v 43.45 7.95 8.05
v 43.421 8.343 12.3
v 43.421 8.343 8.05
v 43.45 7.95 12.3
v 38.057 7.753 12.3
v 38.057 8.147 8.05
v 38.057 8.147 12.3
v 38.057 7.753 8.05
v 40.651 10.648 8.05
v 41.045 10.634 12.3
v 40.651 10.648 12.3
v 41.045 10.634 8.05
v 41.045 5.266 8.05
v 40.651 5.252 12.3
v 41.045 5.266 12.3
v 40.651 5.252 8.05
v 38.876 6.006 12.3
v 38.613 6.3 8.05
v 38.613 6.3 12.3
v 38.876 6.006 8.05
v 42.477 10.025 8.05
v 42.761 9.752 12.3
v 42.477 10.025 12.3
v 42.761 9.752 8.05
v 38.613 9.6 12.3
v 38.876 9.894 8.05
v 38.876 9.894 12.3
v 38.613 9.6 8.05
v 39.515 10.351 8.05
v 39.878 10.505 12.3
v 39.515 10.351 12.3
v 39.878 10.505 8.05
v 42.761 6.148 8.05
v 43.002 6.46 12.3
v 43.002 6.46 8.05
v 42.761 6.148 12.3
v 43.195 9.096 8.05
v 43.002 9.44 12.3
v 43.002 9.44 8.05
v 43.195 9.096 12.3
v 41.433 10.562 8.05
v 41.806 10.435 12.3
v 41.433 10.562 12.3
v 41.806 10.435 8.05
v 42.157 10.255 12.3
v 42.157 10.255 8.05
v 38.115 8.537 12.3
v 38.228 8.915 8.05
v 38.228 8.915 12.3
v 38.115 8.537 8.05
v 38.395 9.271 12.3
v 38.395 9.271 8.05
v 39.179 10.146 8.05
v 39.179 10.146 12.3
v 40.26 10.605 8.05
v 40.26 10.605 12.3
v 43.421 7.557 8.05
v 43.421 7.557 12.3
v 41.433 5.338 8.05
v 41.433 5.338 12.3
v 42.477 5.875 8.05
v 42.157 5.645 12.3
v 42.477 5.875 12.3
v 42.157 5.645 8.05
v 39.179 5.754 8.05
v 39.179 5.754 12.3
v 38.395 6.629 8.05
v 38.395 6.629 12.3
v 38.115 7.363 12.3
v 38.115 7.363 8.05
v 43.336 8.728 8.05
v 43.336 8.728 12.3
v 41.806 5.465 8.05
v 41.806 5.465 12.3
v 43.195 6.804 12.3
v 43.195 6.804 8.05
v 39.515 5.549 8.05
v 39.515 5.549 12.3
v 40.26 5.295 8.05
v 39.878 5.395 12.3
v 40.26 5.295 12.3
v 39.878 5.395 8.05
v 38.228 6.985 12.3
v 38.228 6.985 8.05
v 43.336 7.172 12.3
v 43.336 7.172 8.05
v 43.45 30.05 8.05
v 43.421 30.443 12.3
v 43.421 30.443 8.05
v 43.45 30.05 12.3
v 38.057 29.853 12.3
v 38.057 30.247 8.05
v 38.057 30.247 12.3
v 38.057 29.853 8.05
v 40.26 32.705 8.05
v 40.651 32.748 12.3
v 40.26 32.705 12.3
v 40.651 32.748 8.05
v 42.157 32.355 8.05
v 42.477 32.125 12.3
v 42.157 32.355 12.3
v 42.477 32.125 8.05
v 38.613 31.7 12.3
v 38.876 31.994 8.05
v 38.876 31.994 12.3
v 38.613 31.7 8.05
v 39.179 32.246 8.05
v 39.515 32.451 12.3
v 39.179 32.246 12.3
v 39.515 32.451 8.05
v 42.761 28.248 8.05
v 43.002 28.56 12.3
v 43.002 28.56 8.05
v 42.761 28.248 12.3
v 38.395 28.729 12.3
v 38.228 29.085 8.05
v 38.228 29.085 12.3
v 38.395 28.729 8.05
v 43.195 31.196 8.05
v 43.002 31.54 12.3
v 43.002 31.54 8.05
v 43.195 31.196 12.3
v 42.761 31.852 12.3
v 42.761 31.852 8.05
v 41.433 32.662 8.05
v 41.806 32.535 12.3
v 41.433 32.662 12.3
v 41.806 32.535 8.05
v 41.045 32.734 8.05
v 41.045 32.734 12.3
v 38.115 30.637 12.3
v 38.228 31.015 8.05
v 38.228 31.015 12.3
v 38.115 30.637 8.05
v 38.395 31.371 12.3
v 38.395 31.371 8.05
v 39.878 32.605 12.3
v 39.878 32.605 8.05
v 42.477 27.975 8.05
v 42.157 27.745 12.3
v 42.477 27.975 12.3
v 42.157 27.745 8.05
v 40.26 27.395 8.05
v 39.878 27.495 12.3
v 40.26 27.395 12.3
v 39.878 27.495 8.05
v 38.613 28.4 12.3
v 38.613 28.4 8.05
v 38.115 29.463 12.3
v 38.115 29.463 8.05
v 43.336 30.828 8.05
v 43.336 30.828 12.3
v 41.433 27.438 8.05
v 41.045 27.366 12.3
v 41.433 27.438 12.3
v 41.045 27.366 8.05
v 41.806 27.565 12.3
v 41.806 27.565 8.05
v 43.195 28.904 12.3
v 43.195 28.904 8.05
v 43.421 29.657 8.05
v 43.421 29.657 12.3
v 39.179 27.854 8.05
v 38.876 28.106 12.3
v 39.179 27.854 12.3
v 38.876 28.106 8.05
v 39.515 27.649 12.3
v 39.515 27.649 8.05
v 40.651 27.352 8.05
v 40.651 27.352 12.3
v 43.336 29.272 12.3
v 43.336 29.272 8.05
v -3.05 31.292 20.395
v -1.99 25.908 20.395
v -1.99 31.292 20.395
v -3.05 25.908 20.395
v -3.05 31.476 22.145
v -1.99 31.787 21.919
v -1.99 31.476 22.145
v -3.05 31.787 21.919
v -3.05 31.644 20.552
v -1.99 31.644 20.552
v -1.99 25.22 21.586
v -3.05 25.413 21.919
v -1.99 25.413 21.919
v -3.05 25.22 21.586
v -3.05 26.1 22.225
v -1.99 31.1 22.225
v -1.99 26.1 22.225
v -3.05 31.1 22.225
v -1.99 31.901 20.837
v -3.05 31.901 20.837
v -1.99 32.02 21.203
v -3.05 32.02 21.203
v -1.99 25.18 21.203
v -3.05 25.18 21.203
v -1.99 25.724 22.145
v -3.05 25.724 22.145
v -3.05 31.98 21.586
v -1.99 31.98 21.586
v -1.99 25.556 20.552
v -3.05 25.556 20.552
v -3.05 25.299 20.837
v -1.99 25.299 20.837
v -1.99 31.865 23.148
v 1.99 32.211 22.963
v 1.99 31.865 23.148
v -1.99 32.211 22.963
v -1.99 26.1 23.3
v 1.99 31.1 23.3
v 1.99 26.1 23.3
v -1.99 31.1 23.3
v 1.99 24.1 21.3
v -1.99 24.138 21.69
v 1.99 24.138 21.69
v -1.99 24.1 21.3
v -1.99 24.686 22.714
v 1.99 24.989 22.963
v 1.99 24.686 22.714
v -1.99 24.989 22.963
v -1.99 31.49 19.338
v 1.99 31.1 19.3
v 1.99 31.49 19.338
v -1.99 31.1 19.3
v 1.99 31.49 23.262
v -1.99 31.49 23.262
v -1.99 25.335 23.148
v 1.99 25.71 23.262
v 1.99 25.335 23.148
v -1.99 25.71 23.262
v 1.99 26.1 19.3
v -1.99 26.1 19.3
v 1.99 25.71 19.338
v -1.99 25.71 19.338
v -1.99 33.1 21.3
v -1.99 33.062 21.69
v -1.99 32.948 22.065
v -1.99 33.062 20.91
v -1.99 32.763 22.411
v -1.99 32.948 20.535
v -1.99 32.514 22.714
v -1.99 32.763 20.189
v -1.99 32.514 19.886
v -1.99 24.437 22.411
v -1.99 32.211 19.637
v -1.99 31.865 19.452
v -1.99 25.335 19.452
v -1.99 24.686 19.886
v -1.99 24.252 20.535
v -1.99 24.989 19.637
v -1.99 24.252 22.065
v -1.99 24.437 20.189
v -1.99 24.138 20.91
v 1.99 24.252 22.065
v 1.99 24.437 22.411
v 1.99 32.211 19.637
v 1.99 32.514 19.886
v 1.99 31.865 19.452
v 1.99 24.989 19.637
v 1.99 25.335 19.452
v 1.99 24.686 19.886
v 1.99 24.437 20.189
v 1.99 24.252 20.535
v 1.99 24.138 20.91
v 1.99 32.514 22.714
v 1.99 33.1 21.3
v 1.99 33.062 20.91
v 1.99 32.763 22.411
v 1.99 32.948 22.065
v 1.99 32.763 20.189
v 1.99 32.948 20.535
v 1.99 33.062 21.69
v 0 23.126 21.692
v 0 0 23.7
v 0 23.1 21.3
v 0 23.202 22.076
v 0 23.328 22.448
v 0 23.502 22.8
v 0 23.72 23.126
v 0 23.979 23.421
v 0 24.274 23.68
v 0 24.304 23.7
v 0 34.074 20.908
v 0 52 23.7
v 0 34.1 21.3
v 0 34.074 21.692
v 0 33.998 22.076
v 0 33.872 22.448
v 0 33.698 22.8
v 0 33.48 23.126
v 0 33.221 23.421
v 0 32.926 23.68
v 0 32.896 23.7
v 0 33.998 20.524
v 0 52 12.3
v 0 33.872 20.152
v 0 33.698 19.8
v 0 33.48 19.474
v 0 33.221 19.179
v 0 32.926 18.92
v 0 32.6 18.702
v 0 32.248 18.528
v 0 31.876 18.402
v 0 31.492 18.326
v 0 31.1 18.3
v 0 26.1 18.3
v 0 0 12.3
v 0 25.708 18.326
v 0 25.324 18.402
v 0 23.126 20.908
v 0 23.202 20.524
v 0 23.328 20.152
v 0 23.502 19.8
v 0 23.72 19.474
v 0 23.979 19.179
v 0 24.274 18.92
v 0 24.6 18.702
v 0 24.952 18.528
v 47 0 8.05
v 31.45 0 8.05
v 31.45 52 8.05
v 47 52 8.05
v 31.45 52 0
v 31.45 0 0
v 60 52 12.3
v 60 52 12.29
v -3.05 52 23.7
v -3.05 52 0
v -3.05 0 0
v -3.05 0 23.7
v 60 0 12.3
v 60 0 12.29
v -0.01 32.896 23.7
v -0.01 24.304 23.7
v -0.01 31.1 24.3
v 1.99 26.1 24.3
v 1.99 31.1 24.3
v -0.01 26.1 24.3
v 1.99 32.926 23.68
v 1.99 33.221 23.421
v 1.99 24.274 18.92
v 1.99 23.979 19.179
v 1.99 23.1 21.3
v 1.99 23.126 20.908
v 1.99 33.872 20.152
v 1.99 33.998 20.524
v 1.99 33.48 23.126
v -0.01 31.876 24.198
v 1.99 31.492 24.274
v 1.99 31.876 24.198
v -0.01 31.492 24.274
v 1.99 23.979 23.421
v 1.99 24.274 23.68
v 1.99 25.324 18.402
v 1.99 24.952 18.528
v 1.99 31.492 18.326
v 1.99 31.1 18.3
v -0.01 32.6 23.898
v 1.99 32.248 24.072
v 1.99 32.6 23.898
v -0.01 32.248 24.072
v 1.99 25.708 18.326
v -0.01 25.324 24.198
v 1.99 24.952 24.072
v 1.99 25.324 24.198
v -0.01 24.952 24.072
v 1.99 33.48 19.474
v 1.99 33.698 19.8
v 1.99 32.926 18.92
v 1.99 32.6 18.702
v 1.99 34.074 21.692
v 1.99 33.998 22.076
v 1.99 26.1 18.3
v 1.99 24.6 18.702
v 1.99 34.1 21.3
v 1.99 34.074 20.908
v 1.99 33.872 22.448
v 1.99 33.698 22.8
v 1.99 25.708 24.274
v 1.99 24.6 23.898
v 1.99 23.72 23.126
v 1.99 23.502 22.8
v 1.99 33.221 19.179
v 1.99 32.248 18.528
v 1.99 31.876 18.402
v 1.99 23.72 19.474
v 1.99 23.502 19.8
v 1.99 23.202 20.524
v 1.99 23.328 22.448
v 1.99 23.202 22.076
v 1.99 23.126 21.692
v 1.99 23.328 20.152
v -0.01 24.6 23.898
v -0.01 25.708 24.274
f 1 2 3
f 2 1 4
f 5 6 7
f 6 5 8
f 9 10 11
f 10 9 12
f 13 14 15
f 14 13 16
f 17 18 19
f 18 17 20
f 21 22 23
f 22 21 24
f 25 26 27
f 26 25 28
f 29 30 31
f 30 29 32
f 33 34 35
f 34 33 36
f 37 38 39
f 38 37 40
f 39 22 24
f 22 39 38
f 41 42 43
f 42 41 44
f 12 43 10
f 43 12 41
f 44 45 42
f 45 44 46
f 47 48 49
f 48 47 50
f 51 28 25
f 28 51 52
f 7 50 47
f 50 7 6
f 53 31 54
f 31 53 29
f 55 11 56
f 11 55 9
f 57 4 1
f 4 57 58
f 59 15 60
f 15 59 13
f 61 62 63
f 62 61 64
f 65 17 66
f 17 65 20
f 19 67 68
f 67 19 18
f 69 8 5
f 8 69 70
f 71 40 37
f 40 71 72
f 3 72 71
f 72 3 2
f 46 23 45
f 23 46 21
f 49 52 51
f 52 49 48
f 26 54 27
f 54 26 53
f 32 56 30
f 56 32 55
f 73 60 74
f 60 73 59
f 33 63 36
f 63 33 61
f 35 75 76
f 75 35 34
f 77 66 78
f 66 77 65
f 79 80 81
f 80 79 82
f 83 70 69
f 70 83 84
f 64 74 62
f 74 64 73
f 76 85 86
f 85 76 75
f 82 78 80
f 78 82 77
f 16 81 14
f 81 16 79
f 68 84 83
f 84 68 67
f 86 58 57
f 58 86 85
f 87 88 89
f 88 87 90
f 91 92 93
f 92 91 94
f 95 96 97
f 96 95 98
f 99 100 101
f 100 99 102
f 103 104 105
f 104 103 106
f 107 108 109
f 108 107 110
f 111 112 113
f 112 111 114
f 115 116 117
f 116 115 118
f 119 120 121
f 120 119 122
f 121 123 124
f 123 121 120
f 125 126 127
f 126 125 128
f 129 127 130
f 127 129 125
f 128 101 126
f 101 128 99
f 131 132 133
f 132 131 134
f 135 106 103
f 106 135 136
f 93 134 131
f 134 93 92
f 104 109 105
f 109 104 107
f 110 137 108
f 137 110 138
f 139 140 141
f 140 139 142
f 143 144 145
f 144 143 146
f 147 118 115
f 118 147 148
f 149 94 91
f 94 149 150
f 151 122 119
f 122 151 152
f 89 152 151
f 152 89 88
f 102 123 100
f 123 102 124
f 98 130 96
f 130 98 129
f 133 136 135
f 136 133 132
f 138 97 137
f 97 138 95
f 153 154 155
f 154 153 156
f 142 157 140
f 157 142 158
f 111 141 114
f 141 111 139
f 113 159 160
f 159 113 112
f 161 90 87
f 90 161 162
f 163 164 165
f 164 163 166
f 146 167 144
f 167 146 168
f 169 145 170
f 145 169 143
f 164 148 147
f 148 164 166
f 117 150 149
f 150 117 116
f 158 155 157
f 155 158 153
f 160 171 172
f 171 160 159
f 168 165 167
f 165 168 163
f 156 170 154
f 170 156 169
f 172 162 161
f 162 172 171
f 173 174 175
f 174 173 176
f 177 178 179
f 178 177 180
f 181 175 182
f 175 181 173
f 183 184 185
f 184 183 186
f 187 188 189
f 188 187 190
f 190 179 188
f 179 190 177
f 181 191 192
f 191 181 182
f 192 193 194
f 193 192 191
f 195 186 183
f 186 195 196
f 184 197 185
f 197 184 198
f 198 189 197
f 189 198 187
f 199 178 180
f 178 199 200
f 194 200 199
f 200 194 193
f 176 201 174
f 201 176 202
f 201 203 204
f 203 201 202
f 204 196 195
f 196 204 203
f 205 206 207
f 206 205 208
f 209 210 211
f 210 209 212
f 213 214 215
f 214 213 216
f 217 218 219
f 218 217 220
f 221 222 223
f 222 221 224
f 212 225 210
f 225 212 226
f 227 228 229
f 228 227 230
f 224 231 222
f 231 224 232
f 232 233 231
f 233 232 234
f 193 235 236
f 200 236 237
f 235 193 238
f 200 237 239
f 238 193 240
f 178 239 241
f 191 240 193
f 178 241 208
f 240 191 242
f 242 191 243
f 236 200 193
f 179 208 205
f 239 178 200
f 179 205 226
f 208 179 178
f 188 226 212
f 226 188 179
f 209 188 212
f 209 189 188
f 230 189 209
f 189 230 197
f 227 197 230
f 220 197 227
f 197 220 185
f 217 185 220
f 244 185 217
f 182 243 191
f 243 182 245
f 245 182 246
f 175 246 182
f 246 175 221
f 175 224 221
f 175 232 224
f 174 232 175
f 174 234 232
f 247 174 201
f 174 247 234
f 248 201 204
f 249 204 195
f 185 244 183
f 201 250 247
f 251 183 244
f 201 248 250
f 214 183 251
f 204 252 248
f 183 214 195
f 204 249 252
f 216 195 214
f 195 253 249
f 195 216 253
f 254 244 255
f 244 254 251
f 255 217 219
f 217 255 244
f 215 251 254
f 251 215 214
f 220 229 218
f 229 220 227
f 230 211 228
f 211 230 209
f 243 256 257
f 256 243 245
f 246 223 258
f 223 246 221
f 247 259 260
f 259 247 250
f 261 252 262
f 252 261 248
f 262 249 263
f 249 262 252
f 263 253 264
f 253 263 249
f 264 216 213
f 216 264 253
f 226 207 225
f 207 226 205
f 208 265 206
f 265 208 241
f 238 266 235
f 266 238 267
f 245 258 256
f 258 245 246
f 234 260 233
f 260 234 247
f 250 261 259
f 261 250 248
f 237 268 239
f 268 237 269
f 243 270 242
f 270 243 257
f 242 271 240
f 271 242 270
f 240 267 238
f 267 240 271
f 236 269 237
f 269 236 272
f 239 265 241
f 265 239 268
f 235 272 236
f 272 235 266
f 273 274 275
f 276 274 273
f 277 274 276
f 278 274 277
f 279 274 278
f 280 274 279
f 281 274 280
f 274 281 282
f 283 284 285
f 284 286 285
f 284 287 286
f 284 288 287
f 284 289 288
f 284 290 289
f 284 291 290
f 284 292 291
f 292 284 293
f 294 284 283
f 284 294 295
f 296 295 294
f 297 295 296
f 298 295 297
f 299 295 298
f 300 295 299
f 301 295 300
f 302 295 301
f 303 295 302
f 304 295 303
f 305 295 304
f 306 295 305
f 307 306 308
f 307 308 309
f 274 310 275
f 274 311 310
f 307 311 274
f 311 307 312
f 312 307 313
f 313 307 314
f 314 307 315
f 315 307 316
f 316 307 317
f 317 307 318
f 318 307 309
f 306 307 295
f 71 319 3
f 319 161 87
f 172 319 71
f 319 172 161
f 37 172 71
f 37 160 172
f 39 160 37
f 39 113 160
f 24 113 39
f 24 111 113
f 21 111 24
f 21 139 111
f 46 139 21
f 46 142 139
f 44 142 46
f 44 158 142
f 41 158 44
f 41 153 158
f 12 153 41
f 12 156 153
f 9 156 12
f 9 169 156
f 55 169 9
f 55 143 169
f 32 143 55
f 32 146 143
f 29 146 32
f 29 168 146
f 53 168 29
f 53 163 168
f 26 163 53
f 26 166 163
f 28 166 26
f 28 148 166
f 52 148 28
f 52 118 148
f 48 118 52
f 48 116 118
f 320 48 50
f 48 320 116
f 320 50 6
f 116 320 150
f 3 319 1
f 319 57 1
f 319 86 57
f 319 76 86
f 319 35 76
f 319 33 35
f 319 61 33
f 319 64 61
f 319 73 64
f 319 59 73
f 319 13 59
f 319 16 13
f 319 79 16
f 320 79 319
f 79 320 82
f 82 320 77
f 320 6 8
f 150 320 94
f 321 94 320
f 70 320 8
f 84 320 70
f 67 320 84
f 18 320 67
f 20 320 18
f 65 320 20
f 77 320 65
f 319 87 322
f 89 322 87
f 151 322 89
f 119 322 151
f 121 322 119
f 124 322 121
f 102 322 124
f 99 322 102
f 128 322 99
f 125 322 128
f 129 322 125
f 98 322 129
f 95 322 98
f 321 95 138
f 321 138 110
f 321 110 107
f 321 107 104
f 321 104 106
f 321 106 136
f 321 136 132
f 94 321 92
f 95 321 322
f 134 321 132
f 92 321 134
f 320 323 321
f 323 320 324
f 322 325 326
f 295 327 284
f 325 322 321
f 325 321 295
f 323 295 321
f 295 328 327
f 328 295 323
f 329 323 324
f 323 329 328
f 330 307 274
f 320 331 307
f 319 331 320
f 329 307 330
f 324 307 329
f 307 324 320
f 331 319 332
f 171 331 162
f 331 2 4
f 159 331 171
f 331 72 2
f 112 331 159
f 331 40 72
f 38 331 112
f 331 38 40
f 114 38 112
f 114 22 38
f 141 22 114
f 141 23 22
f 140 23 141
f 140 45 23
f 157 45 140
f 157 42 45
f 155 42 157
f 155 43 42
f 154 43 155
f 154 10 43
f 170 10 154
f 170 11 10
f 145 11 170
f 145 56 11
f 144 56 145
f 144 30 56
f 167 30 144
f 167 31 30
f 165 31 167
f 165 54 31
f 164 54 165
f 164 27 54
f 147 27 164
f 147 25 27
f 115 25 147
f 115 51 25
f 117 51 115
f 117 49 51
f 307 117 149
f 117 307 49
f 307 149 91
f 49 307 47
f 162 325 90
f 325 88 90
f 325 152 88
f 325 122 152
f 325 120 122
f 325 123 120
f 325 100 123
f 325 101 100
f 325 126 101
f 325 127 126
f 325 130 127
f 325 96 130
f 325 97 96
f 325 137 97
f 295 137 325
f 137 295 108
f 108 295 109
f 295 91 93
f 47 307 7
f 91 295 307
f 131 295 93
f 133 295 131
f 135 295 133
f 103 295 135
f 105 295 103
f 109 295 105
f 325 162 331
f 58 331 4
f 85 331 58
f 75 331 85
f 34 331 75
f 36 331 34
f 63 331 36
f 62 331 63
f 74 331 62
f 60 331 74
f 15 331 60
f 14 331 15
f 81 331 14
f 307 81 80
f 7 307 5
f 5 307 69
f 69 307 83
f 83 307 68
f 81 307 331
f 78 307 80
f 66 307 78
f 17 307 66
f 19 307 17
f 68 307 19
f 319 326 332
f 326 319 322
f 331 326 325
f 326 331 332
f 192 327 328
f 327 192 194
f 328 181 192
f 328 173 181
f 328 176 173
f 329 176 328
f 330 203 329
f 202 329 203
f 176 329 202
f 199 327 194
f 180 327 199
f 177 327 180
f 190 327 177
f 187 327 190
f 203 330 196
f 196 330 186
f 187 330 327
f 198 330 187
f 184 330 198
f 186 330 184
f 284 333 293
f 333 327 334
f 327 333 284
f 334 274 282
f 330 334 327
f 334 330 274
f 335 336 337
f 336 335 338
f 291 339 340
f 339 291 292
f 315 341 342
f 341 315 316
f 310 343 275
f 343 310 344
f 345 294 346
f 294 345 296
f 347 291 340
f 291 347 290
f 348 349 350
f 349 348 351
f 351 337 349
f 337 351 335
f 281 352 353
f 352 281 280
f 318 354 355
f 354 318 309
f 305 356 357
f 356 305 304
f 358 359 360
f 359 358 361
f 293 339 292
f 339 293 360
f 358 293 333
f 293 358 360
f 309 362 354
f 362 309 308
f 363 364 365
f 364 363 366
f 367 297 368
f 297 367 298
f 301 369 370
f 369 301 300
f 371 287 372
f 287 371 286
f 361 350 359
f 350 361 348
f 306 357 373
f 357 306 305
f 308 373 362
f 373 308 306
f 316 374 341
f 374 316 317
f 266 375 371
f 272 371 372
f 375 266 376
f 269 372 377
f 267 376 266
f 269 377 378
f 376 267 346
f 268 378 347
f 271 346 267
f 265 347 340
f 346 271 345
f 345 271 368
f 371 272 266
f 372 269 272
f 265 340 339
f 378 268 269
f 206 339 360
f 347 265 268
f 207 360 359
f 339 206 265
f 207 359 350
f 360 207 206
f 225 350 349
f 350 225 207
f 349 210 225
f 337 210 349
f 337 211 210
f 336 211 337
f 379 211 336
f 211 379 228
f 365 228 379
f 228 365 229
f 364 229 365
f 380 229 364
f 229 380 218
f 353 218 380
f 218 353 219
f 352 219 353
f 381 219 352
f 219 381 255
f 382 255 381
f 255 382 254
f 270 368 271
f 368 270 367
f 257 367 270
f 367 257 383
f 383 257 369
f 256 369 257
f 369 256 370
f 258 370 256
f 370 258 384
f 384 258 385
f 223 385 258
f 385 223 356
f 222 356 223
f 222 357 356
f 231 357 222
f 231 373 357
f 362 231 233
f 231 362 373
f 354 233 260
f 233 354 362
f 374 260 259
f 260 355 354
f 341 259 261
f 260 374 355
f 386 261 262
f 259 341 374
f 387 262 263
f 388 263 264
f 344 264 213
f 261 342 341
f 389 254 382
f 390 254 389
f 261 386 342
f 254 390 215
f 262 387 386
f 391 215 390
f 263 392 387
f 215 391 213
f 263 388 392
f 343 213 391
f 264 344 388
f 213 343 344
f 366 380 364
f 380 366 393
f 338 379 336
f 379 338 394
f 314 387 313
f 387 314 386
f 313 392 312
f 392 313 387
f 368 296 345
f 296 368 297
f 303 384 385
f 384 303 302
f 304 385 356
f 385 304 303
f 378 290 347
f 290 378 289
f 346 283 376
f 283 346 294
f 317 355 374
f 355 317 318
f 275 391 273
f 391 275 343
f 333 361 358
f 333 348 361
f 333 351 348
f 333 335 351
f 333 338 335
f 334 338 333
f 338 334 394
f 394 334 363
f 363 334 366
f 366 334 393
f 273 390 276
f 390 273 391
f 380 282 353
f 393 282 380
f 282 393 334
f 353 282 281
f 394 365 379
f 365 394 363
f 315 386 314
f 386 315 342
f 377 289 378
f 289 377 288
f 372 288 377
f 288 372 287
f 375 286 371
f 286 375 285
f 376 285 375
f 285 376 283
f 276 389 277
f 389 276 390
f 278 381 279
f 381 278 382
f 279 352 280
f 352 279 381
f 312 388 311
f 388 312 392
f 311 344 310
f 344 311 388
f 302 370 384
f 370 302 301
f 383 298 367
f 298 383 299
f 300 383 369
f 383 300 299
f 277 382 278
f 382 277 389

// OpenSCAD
heater_z = 4.25;
ptfe_to_bracket_x = 60.0;
bracket_to_through_hole_x = 13.0;
width=52.0;
epsilon = 0.01;
bracket_t = 3.05;
screw_head_h = 5;
wall_t = bracket_t;
wall_h = 18.7 + screw_head_h;
bracket_h = 31.60;
bracket_to_hole_x = 19.25;
base_hole_d = 5.4;
base_h = screw_head_h + bracket_t;
bracket_to_center_y = 28.6;
bracket_to_center_z = 16.3;
bracket_to_base_hole1 = 7.95;
filament_slot_w = 5;
filament_d = 1.85;
filament_slot_d = 2;
ptfe_boss_h = 2;
ptfe_boss_id = 4;
ptfe_boss_od = ptfe_boss_id + 2;
base_hole1_to_hole2 = 22.1;
$fs = 0.4;
$fa =4;


module form_support() {
    module add() {
        // base
        cube([ptfe_to_bracket_x - (bracket_h - bracket_t), width, base_h]);
        translate([0, 0, base_h]) hull() 
        {
            translate([ 0, 0, 0]) cube([ptfe_to_bracket_x - bracket_to_through_hole_x, width, epsilon]);
            translate([0, 0, heater_z - epsilon]) cube([ptfe_to_bracket_x, width, epsilon]);
        }
        //wall
        translate([-wall_t, 0, 0]) cube([wall_t, width, wall_h]);
        // ptfe boss
        translate([-epsilon, bracket_to_center_y - filament_slot_w/2, bracket_to_center_z + screw_head_h]) {
            //filament slot
            rotate([0, 90]) hull() {
                cylinder(d=ptfe_boss_od, h=ptfe_boss_h);
                translate([0, filament_slot_w]) cylinder(d=ptfe_boss_od, h=ptfe_boss_h);

            }
        }
    }

    module subtract() {
        filament_slot_h = wall_t*2 + ptfe_boss_h*2;
        // base holes
        translate([ptfe_to_bracket_x - bracket_to_hole_x, bracket_to_base_hole1, 0]) {
            cylinder(d= base_hole_d, h=bracket_h);
            translate([0, base_hole1_to_hole2, 0]) cylinder(d= base_hole_d, h=bracket_h);
        }
        translate([epsilon, bracket_to_center_y - filament_slot_w/2, bracket_to_center_z + screw_head_h]) {
            //filament slot
            rotate([0, -90]) hull() {
                cylinder(d=filament_d, h=filament_slot_h, center=false);
                translate([0, filament_slot_w]) cylinder(d=filament_d, h=filament_slot_h, center=false);
            }
            //ptfe slot
            rotate([0, 90]) hull() {
                cylinder(d=ptfe_boss_id, h=ptfe_boss_h*2, center=true);
                translate([0, filament_slot_w]) cylinder(d=ptfe_boss_id, h=ptfe_boss_h*2, center=true);
            }
        }
    }
    
    difference() {
        add();
        subtract();
    }
}

form_support();
